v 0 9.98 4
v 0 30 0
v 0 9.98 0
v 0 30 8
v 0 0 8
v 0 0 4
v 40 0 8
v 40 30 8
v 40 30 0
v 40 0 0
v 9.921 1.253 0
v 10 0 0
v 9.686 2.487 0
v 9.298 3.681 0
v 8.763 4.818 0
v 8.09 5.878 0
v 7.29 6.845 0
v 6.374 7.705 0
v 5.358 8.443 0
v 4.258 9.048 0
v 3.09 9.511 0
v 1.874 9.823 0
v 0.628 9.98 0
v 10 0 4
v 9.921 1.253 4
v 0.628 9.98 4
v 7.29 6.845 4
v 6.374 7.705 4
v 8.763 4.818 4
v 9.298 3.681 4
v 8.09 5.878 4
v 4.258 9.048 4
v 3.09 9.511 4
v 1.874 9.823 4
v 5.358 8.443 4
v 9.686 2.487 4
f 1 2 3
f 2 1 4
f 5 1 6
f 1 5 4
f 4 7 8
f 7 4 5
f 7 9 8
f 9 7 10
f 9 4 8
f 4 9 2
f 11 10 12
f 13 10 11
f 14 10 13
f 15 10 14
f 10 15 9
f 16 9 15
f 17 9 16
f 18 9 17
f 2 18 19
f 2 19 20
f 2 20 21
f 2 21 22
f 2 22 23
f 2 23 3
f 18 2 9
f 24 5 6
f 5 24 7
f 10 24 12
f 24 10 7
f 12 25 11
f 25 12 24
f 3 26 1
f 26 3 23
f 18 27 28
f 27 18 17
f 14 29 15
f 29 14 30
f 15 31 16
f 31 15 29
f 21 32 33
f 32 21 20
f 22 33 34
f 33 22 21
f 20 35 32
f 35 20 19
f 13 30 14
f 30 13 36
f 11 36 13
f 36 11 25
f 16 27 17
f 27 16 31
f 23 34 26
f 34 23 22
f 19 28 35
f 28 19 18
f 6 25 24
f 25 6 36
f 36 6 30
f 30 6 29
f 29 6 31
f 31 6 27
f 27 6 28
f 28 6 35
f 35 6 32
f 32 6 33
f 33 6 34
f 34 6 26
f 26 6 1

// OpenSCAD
difference() {
  cube([40, 30, 8]);
  cylinder(h=8, r=10, center=true, $fn=50);
}
